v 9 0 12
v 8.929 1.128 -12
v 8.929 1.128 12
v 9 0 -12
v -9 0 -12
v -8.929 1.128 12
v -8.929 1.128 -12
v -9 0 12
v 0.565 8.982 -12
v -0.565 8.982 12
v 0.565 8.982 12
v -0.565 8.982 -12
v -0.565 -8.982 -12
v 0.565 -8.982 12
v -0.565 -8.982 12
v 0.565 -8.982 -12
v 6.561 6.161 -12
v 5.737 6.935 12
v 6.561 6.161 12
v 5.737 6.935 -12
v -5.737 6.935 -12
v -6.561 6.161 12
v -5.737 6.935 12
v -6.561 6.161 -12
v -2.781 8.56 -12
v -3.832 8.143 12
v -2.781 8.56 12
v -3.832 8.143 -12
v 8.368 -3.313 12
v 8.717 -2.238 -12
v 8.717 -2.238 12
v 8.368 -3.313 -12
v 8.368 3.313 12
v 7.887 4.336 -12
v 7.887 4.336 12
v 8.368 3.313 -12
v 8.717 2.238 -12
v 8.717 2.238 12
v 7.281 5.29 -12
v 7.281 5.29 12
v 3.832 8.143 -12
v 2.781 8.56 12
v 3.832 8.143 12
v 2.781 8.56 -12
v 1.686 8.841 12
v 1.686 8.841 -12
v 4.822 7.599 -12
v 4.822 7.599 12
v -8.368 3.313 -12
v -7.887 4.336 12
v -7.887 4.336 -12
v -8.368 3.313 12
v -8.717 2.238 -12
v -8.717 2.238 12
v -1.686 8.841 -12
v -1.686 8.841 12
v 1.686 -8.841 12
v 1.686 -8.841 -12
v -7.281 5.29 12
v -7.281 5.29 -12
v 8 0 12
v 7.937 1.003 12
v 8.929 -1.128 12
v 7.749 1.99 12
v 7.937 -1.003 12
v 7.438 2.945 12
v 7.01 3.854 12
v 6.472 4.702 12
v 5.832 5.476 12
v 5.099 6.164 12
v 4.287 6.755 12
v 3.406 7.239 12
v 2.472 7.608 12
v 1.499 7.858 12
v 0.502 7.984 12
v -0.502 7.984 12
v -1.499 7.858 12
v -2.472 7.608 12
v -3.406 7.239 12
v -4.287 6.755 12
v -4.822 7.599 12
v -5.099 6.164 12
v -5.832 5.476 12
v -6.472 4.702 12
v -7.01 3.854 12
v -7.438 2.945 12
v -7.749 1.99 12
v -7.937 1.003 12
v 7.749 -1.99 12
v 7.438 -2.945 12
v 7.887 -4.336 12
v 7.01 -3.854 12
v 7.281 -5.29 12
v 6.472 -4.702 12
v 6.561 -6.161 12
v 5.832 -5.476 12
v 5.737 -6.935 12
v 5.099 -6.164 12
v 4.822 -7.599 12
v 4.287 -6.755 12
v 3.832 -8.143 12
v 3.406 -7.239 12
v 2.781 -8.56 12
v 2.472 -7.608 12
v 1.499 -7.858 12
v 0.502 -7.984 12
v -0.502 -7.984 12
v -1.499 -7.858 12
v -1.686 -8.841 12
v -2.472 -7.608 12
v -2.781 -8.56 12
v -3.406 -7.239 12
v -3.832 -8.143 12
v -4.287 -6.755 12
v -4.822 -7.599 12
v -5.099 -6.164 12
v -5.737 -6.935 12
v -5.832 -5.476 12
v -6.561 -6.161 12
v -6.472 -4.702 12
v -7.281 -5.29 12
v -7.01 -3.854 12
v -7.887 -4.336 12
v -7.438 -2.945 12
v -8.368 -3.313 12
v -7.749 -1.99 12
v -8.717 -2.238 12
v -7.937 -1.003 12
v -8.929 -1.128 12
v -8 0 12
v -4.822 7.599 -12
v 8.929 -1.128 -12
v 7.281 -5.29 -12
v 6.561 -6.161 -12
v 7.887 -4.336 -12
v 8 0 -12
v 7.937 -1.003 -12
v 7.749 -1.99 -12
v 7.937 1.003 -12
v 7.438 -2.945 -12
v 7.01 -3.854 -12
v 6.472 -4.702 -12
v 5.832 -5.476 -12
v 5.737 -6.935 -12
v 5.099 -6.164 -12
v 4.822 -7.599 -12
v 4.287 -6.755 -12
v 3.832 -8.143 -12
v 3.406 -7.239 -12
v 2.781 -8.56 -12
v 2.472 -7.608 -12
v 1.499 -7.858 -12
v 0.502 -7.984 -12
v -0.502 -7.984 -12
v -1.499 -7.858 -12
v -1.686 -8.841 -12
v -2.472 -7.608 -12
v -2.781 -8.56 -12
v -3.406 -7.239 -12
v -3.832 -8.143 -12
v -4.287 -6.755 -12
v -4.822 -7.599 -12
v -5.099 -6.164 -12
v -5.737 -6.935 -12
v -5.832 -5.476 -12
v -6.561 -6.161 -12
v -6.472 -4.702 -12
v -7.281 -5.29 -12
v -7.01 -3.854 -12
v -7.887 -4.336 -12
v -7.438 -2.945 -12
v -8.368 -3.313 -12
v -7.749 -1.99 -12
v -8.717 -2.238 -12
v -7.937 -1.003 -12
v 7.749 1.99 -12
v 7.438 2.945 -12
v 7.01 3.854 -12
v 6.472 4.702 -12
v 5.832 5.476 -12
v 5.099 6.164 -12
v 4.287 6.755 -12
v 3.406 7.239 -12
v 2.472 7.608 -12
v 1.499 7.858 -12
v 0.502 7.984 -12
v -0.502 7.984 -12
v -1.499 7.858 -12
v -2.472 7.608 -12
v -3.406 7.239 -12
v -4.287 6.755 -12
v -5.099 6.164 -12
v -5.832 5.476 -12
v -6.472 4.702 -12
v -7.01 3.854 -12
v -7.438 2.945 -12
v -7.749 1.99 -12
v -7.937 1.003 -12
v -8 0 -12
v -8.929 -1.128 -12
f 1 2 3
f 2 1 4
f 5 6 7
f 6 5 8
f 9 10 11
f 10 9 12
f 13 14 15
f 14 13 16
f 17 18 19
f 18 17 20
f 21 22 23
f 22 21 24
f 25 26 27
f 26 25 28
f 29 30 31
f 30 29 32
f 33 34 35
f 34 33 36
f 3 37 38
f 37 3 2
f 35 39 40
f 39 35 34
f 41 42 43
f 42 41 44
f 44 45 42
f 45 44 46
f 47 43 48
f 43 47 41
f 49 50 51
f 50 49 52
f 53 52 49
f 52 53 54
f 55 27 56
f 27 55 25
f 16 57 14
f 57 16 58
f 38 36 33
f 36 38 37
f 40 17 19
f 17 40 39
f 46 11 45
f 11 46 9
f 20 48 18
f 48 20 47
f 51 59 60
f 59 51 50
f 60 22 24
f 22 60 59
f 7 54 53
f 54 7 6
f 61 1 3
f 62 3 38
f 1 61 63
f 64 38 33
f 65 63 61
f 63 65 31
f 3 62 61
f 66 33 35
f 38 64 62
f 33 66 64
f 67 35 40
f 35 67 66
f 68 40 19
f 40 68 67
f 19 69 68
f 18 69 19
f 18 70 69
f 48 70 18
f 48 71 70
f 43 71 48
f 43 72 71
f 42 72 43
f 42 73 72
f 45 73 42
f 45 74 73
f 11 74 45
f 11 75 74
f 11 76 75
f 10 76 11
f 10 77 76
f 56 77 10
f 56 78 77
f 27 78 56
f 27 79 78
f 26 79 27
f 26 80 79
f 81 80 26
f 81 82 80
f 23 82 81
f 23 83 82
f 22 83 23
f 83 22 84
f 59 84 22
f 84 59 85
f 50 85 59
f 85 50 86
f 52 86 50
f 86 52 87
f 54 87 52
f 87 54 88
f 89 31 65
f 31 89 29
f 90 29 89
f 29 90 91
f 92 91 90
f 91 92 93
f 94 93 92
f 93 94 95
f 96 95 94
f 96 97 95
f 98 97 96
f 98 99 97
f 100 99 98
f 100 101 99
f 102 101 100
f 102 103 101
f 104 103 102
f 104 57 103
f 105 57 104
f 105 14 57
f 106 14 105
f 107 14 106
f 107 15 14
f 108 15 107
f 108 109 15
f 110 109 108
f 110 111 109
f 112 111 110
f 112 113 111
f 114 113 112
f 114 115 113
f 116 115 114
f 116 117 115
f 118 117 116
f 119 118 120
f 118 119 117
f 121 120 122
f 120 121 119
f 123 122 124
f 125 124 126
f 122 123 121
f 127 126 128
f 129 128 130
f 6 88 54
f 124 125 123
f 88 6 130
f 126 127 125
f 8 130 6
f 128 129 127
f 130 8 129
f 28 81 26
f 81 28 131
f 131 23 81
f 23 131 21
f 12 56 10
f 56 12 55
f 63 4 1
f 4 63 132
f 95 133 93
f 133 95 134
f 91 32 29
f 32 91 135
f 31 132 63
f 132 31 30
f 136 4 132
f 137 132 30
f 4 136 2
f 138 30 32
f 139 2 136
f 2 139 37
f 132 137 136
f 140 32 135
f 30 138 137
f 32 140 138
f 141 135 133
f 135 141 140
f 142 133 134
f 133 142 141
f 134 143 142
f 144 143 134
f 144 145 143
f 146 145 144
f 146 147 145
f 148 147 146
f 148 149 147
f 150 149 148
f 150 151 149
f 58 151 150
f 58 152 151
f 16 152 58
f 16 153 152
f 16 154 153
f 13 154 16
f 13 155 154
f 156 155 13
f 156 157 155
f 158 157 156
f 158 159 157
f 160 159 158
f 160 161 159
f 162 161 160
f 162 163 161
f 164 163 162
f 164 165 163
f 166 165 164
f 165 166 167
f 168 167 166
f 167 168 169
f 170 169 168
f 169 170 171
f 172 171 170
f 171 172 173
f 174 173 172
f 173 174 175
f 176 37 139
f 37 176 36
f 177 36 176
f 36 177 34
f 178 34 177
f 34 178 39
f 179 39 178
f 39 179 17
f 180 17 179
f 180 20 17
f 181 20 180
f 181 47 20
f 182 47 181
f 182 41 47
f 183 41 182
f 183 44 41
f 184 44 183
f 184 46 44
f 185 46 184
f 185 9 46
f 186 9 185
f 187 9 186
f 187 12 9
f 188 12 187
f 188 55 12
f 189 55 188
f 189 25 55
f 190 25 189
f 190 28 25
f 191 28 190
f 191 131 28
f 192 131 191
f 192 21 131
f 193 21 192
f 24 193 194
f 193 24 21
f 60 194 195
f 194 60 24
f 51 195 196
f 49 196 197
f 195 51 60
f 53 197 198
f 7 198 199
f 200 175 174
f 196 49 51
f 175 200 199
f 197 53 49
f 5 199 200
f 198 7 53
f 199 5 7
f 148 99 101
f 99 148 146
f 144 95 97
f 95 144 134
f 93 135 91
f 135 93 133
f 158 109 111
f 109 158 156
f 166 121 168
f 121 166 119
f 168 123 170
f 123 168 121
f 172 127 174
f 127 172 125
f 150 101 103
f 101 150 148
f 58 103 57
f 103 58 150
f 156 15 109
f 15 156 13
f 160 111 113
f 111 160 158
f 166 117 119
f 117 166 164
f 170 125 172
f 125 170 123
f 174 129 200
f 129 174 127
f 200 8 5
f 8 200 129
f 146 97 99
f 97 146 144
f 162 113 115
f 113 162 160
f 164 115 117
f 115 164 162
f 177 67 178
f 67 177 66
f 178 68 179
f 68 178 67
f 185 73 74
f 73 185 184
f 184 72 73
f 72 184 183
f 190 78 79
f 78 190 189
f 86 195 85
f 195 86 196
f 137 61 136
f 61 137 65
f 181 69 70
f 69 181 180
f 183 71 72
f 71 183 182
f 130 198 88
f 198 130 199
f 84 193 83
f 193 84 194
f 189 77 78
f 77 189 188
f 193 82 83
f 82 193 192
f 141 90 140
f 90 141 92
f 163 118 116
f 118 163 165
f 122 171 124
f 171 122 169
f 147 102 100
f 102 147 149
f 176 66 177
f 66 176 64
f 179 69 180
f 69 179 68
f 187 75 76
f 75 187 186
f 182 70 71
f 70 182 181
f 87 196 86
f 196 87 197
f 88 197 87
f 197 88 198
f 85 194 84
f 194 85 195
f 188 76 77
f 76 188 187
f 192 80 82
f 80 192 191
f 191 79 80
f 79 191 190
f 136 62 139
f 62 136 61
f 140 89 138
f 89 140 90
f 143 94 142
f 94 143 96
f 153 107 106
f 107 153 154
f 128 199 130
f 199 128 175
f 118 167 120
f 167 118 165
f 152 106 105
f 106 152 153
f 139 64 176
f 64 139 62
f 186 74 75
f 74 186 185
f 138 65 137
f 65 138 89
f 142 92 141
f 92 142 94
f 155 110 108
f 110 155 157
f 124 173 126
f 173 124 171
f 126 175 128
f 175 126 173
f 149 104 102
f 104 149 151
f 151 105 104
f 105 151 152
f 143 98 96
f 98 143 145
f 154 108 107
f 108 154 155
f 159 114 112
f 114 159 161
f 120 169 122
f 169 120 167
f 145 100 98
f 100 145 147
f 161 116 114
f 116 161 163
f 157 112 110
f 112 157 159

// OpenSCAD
$fn = 50;


difference() {
	union() {
		translate(v = [0, 0, -12.0000000000]) {
			cylinder(h = 24, r = 9.0000000000);
		}
	}
	union() {
		translate(v = [0, 0, -100.0000000000]) {
			cylinder(h = 200, r = 8);
		}
	}
}
